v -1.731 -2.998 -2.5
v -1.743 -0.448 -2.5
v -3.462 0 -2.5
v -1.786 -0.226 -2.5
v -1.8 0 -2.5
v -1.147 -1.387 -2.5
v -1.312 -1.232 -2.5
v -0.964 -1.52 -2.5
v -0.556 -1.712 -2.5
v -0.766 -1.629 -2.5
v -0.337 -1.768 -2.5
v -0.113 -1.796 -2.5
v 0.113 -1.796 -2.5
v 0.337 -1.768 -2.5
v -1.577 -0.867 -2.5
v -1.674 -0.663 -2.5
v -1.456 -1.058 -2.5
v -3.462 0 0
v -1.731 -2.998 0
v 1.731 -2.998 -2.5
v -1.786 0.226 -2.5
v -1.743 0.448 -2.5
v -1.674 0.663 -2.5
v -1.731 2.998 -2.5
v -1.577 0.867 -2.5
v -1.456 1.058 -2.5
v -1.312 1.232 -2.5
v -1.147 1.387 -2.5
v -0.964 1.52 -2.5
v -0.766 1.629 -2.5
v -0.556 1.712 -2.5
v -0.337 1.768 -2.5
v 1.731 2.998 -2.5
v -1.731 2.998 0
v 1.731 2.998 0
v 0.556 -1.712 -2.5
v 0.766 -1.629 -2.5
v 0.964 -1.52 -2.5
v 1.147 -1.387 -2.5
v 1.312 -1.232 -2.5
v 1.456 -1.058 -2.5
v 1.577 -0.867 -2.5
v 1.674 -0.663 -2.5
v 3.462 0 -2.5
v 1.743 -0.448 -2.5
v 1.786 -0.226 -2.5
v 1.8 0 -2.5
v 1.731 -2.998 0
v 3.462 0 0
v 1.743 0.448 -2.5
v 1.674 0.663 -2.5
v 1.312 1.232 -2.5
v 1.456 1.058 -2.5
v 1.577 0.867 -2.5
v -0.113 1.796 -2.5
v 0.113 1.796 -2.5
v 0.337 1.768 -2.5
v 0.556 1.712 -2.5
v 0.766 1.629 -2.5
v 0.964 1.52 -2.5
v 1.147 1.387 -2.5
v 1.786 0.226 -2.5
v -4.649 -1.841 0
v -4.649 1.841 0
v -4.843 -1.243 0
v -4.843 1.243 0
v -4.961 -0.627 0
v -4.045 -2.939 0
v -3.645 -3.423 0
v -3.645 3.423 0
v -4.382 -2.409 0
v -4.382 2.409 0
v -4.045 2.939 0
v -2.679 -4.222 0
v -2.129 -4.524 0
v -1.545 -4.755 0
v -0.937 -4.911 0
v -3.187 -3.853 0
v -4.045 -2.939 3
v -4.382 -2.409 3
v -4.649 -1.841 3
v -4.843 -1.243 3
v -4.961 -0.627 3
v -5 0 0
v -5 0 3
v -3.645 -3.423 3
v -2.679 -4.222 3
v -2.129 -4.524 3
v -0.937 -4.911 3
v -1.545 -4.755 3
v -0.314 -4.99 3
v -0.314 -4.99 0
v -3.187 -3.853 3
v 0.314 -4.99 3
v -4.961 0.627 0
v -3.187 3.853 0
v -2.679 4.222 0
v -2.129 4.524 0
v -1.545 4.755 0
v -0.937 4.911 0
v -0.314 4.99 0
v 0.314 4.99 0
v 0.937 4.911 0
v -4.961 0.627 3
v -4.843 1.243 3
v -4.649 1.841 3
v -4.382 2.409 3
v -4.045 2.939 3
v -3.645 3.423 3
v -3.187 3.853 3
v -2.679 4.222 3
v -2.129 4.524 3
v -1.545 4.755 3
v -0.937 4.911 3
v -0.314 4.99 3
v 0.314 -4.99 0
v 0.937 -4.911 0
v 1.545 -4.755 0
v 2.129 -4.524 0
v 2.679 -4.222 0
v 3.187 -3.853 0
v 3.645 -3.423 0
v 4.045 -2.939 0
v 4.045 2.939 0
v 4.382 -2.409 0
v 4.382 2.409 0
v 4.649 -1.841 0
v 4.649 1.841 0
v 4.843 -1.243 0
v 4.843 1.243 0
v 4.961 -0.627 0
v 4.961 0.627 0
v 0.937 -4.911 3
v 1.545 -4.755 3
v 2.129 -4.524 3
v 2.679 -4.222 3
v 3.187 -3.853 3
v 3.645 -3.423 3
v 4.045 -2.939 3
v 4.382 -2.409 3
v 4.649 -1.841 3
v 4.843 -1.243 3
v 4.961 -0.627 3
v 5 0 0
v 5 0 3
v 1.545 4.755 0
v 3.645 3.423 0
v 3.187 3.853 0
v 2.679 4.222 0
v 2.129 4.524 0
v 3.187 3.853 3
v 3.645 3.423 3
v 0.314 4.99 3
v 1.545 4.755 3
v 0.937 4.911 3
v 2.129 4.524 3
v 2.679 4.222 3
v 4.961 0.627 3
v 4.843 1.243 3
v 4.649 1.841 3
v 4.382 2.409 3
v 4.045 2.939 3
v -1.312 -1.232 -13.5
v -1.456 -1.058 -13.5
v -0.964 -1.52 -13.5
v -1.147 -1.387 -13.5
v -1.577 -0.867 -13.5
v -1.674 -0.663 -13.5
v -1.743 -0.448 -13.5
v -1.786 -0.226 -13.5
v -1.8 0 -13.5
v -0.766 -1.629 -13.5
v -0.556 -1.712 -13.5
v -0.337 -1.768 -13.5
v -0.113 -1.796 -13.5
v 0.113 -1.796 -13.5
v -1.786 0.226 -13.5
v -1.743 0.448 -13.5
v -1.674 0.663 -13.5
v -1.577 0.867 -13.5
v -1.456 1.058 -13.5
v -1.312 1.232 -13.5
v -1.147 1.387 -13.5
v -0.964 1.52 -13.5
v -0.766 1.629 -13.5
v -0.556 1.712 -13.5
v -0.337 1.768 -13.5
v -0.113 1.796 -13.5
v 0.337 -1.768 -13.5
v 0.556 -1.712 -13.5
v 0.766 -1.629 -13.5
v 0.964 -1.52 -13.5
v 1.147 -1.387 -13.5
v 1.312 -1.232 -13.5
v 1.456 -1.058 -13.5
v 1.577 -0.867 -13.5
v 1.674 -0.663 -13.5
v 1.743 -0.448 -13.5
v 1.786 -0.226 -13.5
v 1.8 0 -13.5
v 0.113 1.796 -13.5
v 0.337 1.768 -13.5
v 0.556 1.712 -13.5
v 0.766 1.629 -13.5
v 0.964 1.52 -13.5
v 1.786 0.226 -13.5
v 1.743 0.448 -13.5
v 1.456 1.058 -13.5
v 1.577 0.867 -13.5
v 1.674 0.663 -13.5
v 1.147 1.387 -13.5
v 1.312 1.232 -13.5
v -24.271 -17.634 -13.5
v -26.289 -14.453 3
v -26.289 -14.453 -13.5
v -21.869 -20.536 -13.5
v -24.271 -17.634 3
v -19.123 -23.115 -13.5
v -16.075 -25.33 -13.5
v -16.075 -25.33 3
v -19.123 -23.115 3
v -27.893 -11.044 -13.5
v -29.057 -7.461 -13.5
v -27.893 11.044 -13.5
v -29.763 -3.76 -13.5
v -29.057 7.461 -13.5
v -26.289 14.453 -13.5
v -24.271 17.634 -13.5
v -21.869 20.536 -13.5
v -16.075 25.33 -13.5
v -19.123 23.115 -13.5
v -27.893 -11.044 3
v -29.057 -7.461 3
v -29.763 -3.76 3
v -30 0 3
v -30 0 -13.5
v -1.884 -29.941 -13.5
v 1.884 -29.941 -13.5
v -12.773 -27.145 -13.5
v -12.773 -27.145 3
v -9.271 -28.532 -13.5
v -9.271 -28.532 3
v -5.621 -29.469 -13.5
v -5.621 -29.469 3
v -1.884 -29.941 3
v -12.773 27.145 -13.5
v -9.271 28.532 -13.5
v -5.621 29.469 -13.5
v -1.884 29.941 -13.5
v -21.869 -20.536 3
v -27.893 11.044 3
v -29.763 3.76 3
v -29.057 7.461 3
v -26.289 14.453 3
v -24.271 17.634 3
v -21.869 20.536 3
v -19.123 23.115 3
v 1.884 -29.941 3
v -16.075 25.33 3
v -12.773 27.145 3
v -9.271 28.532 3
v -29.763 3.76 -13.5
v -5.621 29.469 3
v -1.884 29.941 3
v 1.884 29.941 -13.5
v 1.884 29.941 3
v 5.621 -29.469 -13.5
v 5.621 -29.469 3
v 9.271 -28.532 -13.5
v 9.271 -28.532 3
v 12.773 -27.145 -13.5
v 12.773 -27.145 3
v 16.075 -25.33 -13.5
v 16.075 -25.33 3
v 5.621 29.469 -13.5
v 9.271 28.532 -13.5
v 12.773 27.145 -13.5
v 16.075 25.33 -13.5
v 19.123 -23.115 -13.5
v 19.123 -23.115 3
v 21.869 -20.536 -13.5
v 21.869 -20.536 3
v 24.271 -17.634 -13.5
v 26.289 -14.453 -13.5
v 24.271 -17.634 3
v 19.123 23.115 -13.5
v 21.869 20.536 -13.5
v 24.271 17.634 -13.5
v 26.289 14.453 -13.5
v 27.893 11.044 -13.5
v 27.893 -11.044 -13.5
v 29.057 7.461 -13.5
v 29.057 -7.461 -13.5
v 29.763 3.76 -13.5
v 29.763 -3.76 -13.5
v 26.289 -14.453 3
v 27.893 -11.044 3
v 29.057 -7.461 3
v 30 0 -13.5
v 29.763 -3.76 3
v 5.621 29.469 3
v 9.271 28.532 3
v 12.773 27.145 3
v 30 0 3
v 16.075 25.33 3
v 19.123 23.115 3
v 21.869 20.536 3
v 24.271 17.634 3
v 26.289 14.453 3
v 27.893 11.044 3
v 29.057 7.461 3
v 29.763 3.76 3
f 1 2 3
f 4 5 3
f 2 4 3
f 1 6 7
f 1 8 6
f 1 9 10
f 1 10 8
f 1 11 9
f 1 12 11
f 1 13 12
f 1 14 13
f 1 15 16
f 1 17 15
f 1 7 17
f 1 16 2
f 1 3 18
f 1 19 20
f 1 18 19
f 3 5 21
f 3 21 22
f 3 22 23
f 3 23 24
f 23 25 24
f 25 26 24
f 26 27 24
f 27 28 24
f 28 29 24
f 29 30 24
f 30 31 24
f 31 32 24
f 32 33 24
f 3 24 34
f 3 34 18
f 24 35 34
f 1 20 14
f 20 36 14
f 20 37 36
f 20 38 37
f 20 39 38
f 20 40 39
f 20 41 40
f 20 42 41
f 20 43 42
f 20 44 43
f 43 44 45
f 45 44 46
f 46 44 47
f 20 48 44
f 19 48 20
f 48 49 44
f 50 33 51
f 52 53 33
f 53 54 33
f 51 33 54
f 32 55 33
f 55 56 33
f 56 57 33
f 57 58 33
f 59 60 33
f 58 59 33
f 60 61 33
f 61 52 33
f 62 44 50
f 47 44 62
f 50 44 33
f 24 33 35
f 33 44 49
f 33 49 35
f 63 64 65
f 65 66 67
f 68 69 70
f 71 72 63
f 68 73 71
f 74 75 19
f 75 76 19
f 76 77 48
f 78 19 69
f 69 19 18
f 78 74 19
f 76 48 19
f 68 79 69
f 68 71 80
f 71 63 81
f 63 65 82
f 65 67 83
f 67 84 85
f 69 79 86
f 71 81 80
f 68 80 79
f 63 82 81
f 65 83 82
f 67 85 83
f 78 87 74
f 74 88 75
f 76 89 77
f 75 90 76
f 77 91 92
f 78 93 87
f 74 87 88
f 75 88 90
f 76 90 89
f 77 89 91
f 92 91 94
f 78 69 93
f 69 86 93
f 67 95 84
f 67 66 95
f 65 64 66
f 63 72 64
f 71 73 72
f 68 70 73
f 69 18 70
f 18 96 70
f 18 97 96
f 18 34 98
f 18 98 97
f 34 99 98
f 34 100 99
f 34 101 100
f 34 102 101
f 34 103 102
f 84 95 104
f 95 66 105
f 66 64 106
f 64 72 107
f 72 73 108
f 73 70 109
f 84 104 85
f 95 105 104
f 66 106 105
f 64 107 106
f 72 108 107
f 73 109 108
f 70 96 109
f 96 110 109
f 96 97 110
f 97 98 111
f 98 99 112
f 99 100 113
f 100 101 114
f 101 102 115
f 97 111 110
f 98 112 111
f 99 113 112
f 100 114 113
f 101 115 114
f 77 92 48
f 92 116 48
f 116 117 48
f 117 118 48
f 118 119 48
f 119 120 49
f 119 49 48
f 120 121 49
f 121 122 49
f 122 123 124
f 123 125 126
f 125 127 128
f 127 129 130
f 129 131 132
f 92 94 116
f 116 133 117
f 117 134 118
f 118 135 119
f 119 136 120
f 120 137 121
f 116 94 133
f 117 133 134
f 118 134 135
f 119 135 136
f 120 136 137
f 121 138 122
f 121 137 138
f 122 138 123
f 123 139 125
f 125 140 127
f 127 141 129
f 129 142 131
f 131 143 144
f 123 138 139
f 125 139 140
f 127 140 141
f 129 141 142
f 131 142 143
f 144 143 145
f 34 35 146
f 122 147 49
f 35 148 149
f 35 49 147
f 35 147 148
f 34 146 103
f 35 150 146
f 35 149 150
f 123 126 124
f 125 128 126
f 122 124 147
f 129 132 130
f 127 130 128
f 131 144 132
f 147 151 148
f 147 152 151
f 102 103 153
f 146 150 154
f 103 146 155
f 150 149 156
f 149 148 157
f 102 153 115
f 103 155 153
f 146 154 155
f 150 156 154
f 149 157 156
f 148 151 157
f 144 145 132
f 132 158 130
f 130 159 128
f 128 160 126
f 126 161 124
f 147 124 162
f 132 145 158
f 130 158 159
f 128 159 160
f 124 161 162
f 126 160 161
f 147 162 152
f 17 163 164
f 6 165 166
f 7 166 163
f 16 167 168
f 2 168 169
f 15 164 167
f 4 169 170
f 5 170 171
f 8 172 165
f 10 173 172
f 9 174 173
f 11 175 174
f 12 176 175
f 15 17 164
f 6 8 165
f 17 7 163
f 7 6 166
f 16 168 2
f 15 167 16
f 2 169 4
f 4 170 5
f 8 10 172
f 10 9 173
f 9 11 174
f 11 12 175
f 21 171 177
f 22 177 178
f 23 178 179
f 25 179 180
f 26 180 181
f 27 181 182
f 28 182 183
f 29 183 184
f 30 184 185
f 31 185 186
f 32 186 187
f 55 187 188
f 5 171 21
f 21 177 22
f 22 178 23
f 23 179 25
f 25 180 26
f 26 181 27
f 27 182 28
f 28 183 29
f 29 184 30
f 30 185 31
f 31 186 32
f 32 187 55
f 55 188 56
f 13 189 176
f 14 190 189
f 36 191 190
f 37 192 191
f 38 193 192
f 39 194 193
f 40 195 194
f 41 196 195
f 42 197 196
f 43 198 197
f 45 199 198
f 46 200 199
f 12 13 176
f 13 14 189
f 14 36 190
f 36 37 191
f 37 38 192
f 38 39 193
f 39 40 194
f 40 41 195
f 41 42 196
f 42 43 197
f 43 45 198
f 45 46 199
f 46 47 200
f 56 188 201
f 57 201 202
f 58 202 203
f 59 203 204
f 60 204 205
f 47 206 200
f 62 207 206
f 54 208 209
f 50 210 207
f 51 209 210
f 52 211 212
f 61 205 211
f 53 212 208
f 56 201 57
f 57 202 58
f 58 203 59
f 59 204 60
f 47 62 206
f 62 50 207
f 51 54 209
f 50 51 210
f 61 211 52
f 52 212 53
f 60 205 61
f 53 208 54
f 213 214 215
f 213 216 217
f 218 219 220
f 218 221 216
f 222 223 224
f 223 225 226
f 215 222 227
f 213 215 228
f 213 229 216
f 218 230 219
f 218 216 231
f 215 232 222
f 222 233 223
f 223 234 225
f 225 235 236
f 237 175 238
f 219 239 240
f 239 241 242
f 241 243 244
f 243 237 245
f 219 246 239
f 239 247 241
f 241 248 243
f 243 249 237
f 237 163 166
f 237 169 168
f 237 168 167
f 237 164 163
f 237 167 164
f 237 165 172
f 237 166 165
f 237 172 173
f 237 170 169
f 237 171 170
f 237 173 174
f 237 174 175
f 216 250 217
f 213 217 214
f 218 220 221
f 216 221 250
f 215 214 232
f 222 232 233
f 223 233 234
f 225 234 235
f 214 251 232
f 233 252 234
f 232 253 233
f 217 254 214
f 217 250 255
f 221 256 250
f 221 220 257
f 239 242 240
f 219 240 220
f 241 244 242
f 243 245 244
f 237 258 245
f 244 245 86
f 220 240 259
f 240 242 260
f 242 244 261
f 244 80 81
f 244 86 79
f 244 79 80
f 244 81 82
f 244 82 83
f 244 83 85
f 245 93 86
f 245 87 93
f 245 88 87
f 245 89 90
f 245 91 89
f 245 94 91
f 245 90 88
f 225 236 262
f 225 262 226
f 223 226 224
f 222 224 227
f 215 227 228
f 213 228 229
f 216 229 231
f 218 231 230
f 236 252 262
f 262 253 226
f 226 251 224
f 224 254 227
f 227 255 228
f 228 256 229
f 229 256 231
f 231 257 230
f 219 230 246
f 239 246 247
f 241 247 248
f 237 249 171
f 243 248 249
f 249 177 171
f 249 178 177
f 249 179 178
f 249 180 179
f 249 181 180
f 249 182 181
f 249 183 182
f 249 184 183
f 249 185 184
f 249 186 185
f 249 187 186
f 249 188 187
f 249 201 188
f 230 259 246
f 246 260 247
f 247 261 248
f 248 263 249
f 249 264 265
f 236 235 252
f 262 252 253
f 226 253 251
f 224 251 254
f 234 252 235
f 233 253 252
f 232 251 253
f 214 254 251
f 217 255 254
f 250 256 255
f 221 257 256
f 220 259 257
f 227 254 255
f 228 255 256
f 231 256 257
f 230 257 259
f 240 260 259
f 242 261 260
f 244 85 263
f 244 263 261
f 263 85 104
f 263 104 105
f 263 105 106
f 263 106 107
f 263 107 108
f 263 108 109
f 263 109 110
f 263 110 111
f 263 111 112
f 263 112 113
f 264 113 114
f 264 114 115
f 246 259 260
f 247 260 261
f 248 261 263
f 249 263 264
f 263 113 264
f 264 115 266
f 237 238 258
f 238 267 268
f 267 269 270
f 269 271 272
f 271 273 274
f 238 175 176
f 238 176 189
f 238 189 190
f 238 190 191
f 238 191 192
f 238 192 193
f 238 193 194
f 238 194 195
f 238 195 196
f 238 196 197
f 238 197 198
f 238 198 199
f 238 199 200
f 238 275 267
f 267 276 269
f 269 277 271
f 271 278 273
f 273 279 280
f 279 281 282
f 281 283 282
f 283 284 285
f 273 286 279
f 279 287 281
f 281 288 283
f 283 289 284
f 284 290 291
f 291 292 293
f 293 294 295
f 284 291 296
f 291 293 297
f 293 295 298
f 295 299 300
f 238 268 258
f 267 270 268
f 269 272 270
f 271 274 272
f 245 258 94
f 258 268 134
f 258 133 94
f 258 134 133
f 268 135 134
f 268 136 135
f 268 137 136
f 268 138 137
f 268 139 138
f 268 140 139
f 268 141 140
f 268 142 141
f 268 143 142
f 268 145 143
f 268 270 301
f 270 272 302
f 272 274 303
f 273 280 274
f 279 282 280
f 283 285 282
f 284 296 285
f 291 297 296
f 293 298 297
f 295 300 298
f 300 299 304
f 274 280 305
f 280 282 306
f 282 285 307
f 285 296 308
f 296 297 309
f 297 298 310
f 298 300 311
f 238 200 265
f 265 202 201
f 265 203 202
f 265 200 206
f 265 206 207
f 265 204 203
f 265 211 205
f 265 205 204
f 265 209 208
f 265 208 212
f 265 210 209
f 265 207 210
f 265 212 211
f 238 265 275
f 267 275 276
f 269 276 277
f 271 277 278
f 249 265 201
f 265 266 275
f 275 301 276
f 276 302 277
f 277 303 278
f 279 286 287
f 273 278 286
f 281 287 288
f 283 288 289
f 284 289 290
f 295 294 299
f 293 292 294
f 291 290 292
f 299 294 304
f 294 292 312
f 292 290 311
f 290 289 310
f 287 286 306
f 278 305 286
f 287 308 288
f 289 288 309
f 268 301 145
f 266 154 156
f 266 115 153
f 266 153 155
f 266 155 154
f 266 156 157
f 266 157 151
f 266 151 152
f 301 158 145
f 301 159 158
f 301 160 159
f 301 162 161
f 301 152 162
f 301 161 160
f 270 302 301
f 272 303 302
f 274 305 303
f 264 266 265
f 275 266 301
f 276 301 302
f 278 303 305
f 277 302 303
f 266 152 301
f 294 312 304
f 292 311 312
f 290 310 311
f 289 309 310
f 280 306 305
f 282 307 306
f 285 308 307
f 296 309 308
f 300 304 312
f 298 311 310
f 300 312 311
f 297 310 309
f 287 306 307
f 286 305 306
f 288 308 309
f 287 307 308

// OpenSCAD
$fn = 50;


difference() {
	union() {
		translate(v = [0, 0, -13.5000000000]) {
			cylinder(h = 16.5000000000, r = 30.0000000000);
		}
	}
	union() {
		translate(v = [0, 0, 0]) {
			rotate(a = [0, 0, 0]) {
				difference() {
					union() {
						translate(v = [0, 0, -2.5000000000]) {
							linear_extrude(height = 2.5000000000) {
								polygon(points = [[3.4620000000, 0.0000000000], [1.7310000000, 2.9981799479], [-1.7310000000, 2.9981799479], [-3.4620000000, 0.0000000000], [-1.7310000000, -2.9981799479], [1.7310000000, -2.9981799479]]);
							}
						}
					}
					union();
				}
			}
		}
		#cylinder(h = 3, r = 5.0000000000);
		#translate(v = [0, 0, -100.0000000000]) {
			cylinder(h = 200, r = 1.8000000000);
		}
	}
}
